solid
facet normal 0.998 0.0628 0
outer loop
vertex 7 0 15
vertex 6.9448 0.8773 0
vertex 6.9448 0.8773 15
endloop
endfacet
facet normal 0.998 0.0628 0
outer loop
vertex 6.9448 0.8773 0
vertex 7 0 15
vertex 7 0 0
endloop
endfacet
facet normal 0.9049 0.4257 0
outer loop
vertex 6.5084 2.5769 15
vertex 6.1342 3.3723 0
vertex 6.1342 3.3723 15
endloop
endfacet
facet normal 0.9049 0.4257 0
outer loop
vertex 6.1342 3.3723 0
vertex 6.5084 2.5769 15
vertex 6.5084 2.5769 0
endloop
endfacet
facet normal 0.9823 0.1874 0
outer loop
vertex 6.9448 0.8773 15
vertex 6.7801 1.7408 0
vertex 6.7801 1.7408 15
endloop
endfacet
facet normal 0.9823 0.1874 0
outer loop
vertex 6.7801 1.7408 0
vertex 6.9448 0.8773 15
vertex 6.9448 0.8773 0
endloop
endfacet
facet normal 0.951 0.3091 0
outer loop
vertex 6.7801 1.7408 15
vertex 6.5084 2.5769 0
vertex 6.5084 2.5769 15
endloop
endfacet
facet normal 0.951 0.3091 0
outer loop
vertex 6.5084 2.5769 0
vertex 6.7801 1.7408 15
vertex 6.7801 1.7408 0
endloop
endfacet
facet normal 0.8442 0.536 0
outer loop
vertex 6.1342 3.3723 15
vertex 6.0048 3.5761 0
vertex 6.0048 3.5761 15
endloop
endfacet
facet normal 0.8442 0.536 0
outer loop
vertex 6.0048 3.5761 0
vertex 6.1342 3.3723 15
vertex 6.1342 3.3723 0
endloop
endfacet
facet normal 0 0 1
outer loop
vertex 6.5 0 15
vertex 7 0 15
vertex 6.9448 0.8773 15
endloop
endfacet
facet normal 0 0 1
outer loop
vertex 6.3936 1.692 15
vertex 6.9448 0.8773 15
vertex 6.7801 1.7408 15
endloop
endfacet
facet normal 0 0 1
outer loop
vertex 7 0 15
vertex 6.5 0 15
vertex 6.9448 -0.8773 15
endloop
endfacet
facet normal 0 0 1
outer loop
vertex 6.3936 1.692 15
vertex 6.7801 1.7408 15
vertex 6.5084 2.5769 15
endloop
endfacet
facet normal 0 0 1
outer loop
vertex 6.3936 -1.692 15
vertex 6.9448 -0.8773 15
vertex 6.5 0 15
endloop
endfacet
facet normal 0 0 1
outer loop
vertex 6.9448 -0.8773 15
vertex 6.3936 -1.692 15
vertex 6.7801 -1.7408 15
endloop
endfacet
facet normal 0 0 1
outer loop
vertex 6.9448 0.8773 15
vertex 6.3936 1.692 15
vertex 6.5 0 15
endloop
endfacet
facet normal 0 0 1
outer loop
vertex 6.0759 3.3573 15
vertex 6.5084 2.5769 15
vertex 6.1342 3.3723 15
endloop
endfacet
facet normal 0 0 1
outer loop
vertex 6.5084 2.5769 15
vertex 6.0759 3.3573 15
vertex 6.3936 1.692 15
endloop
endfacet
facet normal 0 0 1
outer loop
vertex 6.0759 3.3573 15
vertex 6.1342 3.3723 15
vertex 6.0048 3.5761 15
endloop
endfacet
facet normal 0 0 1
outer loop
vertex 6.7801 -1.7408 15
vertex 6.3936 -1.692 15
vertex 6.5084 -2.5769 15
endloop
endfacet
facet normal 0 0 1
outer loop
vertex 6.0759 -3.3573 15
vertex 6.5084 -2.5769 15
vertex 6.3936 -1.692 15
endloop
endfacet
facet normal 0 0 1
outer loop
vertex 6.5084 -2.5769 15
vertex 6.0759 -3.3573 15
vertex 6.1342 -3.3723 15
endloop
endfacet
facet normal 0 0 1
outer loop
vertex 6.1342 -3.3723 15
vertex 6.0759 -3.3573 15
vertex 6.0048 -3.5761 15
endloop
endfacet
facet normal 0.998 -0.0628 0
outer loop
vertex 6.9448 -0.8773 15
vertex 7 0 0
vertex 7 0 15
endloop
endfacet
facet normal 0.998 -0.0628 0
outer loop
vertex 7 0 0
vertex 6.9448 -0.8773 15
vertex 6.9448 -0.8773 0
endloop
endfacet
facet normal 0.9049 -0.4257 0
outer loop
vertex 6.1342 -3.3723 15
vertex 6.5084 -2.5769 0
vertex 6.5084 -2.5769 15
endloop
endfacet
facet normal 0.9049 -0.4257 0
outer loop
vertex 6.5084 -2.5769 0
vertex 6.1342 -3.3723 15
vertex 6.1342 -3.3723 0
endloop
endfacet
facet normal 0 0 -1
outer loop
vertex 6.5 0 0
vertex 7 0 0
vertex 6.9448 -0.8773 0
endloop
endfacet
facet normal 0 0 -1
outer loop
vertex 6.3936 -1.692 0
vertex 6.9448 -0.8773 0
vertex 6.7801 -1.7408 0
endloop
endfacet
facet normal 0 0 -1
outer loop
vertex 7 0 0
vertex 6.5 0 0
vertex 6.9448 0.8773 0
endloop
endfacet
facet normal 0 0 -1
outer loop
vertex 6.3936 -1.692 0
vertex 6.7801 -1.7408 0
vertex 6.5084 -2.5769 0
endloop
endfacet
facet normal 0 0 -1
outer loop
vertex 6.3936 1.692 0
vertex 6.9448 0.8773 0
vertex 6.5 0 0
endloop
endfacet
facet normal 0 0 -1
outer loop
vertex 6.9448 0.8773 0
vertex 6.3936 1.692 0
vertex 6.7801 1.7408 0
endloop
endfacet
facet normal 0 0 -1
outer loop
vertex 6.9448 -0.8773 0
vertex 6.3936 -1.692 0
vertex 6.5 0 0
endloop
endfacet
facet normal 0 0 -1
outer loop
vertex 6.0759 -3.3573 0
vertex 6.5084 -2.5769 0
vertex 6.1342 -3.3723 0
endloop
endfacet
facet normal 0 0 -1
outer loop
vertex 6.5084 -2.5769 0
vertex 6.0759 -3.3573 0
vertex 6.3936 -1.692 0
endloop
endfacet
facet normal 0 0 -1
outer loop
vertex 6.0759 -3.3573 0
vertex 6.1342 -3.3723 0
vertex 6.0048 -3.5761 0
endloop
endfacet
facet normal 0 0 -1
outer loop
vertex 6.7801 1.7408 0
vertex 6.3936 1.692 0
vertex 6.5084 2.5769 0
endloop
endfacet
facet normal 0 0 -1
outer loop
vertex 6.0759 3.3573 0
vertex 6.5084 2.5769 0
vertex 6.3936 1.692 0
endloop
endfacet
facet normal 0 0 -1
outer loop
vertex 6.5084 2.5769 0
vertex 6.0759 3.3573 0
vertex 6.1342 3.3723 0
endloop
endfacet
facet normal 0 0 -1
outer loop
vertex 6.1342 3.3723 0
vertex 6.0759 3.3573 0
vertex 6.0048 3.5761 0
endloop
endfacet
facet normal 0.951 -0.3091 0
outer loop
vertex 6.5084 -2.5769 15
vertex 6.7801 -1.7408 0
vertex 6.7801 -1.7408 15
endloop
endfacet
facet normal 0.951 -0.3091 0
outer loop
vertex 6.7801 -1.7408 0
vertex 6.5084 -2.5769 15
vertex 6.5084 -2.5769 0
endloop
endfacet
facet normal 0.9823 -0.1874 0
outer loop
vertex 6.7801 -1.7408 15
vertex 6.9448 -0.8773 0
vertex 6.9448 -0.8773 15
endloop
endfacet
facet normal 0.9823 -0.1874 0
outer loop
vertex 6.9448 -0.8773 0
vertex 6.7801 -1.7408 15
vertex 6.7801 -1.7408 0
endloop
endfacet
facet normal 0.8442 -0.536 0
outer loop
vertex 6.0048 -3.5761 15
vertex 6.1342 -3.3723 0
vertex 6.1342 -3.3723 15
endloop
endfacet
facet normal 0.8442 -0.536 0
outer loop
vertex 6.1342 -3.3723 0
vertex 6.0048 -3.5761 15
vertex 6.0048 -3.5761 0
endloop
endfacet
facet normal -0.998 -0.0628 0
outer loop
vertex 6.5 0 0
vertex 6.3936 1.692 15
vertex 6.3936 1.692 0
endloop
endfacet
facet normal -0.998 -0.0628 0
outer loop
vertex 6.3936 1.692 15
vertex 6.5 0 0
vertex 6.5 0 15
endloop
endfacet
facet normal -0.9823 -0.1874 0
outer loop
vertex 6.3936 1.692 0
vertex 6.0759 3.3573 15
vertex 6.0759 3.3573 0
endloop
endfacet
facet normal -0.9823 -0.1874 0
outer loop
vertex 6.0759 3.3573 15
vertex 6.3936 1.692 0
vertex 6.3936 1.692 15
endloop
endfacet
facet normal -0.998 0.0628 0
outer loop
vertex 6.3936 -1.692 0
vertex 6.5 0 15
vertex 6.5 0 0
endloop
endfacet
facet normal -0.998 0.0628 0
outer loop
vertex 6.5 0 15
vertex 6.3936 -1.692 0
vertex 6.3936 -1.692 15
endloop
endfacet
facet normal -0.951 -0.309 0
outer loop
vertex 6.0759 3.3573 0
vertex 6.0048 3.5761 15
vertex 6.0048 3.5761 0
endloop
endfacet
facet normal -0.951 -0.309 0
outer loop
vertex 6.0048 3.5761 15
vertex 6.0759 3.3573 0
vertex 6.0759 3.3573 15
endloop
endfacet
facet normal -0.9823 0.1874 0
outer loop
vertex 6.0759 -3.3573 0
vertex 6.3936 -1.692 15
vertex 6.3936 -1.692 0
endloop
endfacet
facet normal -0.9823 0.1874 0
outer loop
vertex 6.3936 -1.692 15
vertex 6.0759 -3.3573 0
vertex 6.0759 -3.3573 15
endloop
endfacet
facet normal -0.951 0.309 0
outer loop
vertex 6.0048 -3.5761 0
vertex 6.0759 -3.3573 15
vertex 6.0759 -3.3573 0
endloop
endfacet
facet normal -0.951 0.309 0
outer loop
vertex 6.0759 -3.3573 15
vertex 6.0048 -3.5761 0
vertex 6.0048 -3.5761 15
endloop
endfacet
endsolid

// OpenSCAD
$fn = 50;


difference() {
	union() {
		cylinder(h = 15, r = 7.0000000000);
		translate(v = [-10.0000000000, 0, 0]) {
			cylinder(h = 15, r = 7.0000000000);
		}
	}
	union() {
		cylinder(h = 15, r = 3.2500000000);
		cylinder(h = 15, r = 1.8000000000);
		cylinder(h = 15, r = 1.8000000000);
		cylinder(h = 15, r = 1.8000000000);
		translate(v = [-14.5000000000, 0, 0]) {
			hull() {
				translate(v = [-3.7500000000, 0.0000000000, 0]) {
					cylinder(h = 15, r = 10.5000000000);
				}
				translate(v = [3.7500000000, 0.0000000000, 0]) {
					cylinder(h = 15, r = 10.5000000000);
				}
				translate(v = [-3.7500000000, -0.0000000000, 0]) {
					cylinder(h = 15, r = 10.5000000000);
				}
				translate(v = [3.7500000000, -0.0000000000, 0]) {
					cylinder(h = 15, r = 10.5000000000);
				}
			}
		}
		translate(v = [-7.0000000000, 0, 0.0000000000]) {
			cylinder(h = 15, r = 13.5000000000);
		}
	}
}
